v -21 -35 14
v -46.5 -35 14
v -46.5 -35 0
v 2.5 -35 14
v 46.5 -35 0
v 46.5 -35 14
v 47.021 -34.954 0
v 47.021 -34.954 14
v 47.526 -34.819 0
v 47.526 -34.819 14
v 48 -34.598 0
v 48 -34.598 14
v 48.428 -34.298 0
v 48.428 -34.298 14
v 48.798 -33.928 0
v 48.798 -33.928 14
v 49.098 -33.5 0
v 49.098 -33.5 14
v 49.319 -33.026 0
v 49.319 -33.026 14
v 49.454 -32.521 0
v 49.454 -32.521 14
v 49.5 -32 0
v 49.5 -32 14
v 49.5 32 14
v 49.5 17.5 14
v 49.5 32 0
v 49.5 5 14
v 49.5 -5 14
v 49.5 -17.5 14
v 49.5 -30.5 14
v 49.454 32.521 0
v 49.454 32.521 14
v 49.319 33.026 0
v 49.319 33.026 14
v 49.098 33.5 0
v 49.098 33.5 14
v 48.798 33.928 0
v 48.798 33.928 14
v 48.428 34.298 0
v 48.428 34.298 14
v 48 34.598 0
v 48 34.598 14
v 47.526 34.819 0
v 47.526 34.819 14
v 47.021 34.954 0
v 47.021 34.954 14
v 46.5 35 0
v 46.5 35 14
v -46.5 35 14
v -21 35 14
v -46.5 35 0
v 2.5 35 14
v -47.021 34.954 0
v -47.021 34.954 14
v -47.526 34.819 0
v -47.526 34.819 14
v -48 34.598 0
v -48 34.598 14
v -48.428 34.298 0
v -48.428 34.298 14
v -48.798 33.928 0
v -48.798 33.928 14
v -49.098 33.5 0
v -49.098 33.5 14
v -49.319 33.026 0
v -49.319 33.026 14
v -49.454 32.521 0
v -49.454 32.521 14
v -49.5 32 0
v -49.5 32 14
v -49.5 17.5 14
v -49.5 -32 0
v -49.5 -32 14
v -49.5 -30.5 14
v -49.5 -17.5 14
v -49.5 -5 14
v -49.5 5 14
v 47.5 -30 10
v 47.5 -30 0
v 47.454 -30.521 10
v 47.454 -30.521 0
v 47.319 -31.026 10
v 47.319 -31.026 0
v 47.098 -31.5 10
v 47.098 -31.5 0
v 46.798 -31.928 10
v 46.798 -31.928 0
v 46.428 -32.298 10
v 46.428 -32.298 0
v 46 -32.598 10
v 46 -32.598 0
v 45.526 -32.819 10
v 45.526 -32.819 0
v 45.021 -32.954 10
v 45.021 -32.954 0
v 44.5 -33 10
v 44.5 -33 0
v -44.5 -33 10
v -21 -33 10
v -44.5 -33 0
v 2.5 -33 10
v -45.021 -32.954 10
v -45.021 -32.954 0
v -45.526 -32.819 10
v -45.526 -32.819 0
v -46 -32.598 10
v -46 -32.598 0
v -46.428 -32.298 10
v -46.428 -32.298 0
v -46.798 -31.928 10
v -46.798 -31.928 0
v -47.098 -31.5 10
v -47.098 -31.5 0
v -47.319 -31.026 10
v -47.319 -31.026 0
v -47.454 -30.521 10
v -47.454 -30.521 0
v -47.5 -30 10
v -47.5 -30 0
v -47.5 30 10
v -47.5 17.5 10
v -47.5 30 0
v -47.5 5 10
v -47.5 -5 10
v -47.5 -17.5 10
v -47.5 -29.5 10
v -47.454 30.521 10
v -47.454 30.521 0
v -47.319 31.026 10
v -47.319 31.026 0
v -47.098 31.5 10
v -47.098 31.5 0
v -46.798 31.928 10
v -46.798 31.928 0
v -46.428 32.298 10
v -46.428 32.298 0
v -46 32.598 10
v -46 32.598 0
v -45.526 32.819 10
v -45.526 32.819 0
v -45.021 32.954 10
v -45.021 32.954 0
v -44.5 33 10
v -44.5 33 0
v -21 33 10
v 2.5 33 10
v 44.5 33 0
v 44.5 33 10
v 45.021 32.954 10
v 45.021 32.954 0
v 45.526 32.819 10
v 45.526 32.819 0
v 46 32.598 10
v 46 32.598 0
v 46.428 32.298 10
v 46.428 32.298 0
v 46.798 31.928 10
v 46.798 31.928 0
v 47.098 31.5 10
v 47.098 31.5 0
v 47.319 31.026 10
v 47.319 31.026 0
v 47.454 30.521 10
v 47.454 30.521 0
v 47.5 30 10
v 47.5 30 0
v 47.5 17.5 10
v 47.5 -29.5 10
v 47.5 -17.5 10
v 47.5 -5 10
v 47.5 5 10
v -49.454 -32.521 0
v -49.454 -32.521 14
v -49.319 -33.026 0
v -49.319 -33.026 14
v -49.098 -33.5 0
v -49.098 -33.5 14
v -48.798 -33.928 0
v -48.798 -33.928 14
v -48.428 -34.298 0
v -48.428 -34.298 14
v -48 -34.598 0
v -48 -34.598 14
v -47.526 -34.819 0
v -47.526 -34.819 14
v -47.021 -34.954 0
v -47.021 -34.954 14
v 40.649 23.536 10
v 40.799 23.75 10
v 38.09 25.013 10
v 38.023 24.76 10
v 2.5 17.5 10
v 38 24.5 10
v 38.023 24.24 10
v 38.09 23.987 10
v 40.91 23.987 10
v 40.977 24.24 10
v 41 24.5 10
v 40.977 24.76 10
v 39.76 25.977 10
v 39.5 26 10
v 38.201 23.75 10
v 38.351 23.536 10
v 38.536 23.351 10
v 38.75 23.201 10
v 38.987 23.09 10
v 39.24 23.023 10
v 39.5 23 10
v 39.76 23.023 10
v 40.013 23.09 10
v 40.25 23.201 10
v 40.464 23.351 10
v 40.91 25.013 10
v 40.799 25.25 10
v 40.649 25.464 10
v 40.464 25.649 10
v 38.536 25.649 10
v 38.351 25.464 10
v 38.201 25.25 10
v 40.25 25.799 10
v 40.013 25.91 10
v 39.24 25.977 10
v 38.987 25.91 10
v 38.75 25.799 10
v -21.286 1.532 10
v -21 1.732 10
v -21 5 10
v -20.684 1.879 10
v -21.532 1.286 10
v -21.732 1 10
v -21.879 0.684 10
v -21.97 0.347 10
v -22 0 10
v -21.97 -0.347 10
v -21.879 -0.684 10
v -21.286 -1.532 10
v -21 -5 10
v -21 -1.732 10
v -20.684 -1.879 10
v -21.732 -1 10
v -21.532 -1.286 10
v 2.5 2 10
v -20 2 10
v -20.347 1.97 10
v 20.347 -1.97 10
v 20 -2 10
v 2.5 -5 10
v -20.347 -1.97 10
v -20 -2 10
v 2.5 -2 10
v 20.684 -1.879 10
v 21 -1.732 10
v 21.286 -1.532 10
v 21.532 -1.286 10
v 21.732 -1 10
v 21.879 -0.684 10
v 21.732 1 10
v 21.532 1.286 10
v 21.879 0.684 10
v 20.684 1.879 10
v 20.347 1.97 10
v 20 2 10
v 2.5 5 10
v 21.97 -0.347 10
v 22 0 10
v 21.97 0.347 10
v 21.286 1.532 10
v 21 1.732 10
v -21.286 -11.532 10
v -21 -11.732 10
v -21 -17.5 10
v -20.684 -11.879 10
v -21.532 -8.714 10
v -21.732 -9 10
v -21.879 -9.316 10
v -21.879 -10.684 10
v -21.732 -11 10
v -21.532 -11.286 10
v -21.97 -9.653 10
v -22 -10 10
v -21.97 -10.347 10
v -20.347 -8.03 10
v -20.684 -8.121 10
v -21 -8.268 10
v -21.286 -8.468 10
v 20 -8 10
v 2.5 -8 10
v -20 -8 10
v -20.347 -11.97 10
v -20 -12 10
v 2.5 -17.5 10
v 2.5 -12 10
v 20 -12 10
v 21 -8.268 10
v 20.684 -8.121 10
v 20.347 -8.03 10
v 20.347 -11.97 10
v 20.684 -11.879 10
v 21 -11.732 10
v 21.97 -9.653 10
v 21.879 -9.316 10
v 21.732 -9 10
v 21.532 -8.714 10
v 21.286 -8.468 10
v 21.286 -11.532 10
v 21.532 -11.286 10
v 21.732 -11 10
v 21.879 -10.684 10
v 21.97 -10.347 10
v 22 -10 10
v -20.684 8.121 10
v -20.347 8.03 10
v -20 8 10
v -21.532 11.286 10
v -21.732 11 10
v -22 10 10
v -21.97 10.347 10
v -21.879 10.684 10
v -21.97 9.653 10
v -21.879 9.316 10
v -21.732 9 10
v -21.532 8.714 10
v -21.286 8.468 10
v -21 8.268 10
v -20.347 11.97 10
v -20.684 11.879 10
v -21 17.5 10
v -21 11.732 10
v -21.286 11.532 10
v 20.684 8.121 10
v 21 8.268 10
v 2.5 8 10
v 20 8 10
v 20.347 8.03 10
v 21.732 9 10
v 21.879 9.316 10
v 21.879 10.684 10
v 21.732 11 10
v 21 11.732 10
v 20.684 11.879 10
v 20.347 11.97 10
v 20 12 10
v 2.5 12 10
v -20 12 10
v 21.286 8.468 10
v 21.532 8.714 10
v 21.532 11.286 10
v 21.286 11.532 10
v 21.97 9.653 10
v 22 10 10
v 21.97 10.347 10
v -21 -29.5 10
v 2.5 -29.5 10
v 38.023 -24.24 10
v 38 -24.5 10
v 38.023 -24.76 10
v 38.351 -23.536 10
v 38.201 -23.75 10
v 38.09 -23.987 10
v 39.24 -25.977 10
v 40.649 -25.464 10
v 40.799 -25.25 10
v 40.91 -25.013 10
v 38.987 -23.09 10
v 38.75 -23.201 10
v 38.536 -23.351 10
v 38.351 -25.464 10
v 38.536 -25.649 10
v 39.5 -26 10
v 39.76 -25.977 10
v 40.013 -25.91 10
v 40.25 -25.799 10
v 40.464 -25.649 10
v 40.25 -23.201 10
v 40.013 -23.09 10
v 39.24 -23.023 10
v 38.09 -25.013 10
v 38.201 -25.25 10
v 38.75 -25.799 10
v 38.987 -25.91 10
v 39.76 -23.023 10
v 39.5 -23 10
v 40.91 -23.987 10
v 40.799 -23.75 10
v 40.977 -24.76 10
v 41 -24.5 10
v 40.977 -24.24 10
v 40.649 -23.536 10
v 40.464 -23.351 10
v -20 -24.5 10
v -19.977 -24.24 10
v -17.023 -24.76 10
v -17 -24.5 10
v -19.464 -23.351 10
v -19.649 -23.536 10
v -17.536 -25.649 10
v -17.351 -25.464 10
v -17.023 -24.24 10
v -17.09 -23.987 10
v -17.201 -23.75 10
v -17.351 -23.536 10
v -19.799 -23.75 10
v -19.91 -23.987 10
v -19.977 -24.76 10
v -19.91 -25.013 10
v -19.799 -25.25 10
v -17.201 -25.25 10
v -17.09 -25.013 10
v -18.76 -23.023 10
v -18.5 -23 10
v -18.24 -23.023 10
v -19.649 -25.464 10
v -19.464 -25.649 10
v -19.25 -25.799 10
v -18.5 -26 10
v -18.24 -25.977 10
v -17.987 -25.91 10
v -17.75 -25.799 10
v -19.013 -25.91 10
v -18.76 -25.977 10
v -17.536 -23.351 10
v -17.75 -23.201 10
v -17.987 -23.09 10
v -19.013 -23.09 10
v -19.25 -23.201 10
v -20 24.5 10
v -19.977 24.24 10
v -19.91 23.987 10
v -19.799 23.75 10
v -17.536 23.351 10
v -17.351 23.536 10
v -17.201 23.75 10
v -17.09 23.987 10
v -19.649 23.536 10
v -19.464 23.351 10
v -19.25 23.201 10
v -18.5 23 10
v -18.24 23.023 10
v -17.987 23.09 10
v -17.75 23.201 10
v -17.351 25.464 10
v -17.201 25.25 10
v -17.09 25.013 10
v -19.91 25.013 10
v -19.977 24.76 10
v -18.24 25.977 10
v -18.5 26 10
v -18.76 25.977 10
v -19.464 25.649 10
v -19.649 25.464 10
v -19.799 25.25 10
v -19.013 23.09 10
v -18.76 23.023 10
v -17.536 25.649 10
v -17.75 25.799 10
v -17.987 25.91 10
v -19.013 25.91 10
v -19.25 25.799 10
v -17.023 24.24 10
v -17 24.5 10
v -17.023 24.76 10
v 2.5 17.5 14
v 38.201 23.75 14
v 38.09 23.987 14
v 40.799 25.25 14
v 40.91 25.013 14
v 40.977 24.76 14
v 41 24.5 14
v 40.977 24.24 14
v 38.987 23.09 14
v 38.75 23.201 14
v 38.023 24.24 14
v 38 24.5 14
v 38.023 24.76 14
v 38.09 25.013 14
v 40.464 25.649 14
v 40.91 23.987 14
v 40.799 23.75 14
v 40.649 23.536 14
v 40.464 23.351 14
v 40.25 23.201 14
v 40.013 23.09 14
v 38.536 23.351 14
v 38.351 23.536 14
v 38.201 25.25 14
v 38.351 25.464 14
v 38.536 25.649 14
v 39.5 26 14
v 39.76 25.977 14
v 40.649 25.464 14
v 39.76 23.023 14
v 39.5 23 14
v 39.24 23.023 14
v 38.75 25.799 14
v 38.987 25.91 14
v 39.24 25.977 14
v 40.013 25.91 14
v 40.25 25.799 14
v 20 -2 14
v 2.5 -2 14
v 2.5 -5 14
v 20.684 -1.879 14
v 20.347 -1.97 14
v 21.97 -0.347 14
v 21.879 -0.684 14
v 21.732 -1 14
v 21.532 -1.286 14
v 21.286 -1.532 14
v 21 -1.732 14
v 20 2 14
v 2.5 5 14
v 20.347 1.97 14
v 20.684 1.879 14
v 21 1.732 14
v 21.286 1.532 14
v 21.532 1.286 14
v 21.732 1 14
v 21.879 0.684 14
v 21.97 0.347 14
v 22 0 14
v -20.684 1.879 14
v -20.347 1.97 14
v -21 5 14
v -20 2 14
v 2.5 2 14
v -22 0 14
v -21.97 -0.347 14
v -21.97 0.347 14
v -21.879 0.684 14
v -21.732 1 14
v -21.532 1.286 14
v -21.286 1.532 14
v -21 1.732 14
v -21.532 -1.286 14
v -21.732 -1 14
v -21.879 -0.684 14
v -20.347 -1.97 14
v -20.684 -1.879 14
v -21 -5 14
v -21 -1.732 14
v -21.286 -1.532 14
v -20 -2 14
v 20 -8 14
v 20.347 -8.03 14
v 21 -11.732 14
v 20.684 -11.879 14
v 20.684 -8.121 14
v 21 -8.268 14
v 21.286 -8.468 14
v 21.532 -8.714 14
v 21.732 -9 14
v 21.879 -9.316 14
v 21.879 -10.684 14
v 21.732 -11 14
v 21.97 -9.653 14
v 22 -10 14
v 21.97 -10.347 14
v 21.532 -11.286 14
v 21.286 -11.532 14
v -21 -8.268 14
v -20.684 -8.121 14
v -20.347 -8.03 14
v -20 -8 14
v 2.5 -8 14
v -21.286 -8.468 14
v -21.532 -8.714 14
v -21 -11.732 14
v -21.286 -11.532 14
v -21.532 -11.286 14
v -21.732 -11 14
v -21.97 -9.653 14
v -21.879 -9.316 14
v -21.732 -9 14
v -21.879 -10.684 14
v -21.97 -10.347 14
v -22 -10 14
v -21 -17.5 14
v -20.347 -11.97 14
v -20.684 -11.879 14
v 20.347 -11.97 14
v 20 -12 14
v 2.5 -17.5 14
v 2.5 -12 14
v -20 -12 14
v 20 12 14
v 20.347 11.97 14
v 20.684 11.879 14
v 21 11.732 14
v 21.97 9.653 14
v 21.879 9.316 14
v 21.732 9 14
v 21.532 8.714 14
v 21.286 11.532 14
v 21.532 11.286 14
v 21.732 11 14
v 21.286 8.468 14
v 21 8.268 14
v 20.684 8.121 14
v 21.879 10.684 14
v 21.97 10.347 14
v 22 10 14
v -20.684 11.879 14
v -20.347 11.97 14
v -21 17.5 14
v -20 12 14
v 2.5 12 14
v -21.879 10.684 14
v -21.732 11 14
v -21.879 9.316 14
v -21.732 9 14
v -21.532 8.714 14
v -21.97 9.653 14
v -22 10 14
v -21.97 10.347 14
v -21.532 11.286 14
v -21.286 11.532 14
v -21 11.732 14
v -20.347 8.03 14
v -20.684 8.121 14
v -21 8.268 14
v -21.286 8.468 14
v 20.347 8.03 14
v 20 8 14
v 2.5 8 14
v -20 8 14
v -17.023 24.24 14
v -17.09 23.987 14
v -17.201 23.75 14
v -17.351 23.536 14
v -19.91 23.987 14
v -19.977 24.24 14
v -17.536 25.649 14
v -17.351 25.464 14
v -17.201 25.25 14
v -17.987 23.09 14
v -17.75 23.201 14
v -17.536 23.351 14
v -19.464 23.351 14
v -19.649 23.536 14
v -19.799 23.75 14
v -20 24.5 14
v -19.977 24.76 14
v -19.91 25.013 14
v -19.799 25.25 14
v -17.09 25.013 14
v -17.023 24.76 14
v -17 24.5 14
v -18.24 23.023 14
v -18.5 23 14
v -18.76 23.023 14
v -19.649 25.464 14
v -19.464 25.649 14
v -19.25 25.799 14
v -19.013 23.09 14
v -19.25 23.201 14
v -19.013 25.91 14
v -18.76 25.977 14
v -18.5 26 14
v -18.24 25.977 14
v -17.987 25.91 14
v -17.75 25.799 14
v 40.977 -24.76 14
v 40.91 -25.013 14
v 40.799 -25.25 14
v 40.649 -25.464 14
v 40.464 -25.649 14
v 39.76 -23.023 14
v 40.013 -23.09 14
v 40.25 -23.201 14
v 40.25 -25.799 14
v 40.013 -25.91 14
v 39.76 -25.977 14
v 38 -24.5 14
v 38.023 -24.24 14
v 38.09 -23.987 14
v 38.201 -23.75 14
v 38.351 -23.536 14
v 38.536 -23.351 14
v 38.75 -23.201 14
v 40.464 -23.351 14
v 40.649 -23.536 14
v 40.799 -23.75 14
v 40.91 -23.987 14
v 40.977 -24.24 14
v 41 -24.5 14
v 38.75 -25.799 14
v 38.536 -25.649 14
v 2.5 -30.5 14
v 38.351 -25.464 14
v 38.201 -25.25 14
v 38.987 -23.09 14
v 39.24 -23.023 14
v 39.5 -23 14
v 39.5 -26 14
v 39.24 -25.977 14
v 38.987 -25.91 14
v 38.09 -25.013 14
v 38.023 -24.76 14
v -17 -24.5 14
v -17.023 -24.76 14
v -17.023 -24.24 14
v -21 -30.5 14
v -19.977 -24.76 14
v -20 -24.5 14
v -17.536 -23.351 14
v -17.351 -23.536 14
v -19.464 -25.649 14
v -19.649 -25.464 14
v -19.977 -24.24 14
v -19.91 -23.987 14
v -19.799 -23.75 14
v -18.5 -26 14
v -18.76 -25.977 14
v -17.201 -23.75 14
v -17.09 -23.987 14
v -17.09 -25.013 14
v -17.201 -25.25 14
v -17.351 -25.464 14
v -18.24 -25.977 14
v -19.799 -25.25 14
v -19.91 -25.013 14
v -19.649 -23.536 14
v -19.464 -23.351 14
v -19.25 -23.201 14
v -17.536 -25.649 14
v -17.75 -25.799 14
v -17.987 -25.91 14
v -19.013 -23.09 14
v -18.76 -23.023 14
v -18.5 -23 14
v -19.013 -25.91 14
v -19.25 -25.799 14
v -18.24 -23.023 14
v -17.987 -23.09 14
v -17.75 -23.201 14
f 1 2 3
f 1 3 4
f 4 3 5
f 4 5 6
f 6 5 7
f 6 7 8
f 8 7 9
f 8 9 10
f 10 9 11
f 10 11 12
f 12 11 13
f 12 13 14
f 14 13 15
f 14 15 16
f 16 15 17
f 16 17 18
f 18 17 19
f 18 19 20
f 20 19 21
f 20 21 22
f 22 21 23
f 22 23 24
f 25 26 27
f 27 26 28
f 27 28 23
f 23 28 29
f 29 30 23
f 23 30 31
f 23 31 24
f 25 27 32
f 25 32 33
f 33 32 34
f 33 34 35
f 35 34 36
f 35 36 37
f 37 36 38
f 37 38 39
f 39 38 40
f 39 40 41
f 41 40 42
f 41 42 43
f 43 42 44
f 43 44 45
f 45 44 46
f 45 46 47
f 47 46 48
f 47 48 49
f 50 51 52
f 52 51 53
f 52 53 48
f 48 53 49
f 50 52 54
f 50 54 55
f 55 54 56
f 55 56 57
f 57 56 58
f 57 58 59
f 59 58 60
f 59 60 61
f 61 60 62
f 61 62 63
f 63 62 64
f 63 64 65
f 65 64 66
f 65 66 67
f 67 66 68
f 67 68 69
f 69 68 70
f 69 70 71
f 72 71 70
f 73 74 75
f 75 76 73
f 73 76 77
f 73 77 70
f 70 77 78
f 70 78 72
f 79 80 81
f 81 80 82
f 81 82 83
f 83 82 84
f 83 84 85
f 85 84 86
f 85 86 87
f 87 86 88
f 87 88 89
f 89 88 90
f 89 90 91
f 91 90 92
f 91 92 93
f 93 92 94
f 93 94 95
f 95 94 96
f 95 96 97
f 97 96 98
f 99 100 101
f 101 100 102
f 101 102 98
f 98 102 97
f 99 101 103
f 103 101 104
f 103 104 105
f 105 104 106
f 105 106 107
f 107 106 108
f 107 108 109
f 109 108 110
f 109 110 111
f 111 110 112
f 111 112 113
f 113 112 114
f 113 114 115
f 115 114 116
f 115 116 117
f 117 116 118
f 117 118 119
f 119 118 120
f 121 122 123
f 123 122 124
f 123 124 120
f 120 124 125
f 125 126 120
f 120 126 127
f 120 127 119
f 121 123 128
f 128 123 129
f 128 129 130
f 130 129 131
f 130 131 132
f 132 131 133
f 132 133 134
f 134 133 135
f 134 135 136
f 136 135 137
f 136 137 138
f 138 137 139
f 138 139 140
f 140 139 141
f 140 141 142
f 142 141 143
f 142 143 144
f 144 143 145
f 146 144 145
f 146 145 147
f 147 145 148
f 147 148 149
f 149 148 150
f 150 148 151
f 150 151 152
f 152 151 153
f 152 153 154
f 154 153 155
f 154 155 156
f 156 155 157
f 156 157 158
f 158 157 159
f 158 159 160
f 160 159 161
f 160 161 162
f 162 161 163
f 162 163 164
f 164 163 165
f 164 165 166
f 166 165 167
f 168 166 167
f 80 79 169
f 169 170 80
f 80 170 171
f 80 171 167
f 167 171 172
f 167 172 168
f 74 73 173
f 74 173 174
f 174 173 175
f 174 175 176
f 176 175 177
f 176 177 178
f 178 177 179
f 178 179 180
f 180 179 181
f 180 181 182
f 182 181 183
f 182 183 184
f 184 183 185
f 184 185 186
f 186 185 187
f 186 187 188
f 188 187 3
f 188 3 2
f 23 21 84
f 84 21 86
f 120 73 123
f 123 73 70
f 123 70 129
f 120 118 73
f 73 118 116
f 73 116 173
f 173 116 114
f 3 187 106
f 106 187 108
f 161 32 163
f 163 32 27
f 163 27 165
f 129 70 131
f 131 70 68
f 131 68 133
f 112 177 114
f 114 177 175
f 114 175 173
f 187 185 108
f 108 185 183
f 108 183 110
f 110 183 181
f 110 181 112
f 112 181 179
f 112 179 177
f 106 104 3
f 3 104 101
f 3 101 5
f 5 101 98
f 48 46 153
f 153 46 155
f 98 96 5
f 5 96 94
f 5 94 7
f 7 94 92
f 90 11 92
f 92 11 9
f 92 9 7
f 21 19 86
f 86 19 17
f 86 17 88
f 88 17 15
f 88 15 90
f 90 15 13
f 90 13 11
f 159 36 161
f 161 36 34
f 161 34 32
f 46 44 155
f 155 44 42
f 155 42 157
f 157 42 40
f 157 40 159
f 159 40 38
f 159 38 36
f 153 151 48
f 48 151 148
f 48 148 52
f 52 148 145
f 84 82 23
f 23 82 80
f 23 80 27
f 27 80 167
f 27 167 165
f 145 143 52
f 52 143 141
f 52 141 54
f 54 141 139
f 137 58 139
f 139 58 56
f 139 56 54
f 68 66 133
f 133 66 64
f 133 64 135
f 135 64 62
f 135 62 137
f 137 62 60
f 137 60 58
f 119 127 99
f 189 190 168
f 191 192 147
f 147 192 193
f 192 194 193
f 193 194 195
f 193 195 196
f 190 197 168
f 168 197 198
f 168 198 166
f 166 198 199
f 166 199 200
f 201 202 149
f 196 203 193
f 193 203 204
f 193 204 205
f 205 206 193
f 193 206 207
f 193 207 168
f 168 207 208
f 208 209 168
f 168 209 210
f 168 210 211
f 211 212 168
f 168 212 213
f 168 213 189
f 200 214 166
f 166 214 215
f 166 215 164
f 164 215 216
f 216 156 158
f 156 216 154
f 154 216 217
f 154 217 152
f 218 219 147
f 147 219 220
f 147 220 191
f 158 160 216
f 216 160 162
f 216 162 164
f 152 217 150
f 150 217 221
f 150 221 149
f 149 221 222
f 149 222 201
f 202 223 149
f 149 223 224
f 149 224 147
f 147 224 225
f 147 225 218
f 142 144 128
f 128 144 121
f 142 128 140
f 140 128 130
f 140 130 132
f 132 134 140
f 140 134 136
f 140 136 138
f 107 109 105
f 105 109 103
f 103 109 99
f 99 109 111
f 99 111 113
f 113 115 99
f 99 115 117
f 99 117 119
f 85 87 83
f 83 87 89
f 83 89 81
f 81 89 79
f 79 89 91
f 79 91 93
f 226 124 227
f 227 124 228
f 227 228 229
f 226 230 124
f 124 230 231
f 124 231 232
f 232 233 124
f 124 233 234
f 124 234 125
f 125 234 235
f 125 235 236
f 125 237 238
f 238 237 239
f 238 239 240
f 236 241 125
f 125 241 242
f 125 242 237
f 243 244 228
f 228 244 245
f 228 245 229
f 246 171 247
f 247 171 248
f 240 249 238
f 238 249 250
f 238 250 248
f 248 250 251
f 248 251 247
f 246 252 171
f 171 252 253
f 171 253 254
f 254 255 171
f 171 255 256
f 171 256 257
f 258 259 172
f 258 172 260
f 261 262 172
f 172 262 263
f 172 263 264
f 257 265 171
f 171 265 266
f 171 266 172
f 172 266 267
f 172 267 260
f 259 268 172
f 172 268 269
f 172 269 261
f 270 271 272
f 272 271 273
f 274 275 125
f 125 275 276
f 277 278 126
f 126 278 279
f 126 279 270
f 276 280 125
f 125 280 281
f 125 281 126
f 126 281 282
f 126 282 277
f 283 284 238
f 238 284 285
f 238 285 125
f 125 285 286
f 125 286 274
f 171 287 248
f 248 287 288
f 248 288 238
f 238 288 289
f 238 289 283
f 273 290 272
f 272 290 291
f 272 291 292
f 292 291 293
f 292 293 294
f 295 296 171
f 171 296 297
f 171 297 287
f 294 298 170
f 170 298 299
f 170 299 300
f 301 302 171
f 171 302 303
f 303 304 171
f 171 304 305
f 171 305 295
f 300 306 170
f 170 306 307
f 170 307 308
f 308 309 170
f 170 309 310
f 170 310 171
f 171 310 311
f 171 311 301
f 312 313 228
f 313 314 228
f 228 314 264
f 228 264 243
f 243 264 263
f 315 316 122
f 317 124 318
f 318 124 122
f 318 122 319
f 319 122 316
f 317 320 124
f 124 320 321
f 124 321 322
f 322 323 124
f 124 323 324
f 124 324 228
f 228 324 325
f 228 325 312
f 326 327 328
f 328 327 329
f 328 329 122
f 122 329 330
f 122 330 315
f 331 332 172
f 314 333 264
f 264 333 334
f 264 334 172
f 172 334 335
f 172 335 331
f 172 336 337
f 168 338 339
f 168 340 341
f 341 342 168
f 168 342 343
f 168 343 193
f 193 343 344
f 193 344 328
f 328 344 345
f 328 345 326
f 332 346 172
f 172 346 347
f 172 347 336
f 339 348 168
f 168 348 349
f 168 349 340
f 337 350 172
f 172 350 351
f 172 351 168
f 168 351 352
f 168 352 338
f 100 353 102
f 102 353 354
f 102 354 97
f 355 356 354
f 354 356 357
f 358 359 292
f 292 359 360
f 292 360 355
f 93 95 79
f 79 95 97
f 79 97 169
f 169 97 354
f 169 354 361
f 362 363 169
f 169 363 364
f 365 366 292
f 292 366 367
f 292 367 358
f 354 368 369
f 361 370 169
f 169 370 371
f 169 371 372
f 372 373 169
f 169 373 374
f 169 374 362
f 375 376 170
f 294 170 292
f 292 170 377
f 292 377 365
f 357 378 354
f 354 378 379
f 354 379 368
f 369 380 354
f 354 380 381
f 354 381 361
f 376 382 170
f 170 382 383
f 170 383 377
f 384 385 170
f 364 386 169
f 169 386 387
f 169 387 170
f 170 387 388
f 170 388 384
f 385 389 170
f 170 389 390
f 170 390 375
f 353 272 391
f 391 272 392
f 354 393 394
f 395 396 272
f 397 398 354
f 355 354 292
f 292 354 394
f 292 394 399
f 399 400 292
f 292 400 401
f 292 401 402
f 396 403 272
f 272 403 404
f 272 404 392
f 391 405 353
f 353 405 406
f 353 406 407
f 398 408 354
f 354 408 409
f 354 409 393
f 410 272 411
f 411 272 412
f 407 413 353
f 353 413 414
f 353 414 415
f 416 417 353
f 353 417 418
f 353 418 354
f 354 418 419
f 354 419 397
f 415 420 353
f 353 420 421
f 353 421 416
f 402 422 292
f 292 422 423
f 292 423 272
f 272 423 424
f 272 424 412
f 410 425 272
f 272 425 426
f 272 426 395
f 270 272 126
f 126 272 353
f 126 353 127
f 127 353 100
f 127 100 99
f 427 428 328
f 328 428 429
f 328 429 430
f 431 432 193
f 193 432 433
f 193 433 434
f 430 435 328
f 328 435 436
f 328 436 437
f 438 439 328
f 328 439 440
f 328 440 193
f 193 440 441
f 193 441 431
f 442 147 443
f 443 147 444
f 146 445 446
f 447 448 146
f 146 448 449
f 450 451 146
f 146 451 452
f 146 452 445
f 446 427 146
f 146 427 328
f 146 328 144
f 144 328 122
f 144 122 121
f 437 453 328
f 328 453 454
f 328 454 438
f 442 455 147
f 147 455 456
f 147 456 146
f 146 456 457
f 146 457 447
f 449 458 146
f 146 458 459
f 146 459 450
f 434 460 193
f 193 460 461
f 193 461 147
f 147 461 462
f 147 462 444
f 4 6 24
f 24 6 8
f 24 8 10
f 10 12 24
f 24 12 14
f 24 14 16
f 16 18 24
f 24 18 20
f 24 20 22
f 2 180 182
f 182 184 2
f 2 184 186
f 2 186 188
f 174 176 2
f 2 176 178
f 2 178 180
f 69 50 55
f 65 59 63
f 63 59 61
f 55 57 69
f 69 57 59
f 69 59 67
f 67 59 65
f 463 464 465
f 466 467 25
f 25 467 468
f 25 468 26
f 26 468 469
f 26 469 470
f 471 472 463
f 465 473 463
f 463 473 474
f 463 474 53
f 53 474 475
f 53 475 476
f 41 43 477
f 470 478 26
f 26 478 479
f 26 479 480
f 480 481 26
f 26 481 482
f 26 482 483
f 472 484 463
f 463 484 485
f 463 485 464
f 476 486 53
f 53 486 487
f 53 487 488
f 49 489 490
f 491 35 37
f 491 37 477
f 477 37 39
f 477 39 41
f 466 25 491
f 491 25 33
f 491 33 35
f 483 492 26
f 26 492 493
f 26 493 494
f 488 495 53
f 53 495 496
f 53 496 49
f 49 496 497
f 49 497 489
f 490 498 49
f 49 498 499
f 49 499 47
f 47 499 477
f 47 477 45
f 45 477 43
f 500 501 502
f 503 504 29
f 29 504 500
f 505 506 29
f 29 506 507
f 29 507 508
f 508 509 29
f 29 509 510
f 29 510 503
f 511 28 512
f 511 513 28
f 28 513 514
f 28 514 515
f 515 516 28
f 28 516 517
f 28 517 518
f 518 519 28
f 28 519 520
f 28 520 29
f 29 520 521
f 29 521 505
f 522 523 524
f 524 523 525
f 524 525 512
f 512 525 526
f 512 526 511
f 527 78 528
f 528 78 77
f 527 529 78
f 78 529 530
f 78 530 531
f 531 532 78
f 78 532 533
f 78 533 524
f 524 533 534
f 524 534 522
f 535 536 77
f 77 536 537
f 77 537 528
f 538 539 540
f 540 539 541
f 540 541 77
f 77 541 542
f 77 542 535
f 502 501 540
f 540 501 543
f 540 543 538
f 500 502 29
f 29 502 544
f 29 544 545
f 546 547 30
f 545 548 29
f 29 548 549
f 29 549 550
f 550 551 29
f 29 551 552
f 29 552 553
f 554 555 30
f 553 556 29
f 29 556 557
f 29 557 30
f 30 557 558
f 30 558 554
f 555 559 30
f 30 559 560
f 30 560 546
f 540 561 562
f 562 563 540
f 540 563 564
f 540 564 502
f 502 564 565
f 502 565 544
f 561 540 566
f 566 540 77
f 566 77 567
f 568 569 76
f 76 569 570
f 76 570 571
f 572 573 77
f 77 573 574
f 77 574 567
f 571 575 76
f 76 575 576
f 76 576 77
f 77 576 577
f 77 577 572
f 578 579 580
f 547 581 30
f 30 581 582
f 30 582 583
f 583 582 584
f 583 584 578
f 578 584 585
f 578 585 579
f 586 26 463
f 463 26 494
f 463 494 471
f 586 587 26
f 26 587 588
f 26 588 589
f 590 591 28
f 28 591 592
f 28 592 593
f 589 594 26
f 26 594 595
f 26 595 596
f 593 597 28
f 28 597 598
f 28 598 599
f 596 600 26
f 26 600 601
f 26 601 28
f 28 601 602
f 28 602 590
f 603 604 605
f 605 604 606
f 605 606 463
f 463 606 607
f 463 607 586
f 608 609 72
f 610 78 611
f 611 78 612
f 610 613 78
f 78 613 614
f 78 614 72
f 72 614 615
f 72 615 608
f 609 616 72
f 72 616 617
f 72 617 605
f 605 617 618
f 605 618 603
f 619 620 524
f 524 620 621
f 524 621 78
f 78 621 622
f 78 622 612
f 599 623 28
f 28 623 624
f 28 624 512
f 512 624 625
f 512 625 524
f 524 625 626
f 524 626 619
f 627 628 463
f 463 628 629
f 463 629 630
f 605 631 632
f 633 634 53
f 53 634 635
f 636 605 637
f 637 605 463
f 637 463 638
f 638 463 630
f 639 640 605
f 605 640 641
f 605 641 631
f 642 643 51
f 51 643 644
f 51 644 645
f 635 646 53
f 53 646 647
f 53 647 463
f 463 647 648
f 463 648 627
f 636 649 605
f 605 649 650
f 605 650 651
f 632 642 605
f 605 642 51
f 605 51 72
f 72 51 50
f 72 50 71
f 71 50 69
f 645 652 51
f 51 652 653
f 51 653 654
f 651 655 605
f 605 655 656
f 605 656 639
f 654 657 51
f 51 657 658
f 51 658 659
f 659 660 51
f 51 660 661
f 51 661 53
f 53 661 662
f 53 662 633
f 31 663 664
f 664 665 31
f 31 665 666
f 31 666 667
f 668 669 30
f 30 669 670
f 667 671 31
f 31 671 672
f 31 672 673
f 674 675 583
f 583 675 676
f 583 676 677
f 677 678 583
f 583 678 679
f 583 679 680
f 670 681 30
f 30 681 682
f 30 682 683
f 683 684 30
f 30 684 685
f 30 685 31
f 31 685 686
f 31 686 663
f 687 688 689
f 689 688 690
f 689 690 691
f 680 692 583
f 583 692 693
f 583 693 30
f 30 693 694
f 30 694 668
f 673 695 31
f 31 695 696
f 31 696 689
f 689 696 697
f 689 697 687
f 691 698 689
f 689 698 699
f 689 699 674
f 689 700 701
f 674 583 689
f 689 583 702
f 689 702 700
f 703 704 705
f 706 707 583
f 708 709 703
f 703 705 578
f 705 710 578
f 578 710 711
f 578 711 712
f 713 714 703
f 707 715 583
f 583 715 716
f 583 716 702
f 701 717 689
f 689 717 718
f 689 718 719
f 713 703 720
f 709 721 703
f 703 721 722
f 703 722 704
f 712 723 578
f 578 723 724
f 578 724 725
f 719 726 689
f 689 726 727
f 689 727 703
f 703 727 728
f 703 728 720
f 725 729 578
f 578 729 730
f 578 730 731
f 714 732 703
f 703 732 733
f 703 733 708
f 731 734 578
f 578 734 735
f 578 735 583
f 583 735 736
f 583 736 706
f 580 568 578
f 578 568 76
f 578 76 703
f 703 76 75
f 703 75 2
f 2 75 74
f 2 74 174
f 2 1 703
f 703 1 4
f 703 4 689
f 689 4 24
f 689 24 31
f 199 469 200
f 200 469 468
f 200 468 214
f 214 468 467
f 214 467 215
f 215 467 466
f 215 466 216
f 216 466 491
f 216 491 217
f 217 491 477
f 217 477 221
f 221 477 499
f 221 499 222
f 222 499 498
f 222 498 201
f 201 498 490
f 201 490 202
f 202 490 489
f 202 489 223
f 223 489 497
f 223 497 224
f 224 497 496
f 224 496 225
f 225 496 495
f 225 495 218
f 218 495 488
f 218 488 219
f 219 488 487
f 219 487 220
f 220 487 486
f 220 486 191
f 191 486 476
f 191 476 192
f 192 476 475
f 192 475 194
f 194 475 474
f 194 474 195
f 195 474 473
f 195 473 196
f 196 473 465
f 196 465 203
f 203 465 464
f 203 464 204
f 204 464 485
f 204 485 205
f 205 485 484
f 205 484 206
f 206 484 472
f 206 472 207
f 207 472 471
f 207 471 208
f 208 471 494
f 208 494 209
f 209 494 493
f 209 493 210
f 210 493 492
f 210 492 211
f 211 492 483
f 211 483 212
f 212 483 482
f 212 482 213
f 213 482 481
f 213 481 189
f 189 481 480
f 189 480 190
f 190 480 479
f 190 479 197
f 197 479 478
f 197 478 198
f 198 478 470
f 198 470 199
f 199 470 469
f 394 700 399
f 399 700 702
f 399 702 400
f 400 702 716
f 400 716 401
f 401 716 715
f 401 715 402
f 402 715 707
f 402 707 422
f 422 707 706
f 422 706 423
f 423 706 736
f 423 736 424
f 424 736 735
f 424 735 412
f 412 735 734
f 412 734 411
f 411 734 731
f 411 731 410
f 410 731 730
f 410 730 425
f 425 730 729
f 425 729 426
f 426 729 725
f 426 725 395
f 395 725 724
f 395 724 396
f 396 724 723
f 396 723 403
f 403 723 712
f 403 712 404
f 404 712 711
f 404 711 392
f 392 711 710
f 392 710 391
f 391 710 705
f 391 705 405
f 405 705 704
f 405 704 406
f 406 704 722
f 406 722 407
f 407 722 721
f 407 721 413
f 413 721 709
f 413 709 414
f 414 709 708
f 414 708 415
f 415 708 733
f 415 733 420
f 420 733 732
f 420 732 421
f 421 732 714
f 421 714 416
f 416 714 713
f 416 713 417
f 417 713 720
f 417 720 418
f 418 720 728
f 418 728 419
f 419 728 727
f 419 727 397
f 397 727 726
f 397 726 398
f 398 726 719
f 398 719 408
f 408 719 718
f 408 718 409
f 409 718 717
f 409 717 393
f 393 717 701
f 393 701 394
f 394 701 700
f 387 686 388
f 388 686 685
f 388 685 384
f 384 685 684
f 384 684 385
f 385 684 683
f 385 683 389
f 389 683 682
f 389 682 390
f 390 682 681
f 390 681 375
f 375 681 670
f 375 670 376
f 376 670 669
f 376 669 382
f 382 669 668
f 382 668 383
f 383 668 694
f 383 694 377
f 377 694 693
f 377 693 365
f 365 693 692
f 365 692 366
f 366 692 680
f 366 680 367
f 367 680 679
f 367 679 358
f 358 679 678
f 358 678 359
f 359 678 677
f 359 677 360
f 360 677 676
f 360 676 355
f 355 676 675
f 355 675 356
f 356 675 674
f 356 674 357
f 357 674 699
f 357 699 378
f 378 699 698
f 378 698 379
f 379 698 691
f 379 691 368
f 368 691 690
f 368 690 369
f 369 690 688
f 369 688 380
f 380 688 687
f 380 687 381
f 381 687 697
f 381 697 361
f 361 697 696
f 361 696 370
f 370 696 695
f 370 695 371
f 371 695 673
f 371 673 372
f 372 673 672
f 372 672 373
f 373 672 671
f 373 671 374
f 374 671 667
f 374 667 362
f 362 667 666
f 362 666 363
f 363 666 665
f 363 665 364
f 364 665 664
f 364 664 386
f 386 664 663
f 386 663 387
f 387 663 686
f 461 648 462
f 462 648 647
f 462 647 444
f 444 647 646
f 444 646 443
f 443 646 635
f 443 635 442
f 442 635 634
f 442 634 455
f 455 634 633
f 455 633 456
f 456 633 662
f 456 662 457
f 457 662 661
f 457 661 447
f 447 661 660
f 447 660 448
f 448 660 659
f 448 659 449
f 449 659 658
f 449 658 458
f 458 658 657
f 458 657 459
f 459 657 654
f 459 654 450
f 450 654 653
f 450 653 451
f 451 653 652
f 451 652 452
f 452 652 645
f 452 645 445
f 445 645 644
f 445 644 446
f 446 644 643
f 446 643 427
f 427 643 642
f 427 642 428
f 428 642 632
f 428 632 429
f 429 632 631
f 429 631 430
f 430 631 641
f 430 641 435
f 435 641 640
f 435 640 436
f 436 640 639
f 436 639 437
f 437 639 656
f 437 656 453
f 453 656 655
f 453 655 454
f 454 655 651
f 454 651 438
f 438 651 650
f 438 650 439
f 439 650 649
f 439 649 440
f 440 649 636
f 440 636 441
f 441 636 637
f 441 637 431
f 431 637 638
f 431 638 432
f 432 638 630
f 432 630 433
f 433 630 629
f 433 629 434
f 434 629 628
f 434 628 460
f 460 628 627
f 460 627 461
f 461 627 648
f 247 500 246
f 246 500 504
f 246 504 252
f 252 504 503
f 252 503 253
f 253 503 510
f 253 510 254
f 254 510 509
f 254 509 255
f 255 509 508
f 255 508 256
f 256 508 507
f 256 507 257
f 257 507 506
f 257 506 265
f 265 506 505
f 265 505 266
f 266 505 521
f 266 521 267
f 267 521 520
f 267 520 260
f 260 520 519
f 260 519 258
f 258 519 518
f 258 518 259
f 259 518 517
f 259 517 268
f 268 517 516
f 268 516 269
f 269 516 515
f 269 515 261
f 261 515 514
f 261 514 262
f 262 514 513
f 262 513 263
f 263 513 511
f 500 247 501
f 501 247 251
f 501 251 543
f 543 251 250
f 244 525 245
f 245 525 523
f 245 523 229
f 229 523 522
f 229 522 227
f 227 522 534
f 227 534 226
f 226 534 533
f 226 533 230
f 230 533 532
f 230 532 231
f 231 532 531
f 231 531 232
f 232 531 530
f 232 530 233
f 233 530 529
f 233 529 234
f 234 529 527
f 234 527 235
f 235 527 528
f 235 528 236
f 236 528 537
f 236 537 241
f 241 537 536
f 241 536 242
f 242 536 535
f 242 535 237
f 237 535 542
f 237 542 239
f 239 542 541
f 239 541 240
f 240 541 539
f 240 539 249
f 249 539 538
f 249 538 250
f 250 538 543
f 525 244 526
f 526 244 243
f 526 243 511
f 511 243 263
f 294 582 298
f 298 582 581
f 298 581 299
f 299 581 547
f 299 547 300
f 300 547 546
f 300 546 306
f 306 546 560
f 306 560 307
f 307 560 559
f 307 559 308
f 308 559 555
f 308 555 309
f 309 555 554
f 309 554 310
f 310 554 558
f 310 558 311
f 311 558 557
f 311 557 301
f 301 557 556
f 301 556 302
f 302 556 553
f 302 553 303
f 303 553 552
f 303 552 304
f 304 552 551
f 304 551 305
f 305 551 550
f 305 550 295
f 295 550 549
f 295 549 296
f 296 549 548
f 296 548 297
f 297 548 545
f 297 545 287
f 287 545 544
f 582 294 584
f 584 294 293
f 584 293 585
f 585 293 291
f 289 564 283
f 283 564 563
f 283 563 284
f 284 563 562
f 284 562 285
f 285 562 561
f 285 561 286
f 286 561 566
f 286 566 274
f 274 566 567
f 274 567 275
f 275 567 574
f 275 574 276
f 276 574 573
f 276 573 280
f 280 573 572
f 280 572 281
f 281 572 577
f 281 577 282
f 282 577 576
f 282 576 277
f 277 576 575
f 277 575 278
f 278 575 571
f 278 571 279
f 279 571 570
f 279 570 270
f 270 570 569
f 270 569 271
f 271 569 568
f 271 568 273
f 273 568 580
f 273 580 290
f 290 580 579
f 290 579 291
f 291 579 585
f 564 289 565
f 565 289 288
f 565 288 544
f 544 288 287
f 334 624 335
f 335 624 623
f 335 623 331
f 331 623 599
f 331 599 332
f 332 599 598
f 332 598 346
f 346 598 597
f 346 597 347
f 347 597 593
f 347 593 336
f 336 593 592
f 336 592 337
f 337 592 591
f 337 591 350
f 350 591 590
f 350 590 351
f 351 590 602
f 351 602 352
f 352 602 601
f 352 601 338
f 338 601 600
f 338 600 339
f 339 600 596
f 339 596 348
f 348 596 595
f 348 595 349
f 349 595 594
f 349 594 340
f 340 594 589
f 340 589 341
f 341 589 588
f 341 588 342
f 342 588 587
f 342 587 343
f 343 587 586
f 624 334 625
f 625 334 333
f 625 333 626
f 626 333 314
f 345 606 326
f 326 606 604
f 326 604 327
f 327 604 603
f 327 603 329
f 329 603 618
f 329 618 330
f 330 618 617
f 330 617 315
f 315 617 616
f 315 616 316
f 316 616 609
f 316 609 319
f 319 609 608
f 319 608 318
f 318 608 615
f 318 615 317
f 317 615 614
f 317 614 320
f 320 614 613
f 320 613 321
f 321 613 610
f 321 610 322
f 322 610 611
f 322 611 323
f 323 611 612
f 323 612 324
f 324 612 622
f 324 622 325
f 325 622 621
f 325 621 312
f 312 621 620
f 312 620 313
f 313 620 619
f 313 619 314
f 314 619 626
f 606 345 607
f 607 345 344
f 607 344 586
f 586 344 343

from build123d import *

# Parameters (mm, degrees)
BOSS_EXTRU_1_DEPTH      = 10
BOSS_EXTRU_2_START      = 10
BOSS_EXTRU_2_DEPTH      = 4
ESQUISSE3_R             = 1.5
ENL_V_MAT_EXTRU_1_DEPTH = 63.219369974
ENL_V_MAT_EXTRU_2_DEPTH = 5


with BuildPart() as part:
    # Esquisse1 → Boss.-Extru.1 (new body)
    with BuildSketch(Plane.XY):
        with BuildLine():
            Line((-46.5, -35), (46.5, -35))
            ThreePointArc((46.5, -35), (48.621320344, -34.121320344), (49.5, -32))
            Line((49.5, -32), (49.5, 32))
            ThreePointArc((49.5, 32), (48.621320344, 34.121320344), (46.5, 35))
            Line((46.5, 35), (-46.5, 35))
            ThreePointArc((-46.5, 35), (-48.621320344, 34.121320344), (-49.5, 32))
            Line((-49.5, 32), (-49.5, -32))
            ThreePointArc((-49.5, -32), (-48.621320344, -34.121320344), (-46.5, -35))
        make_face()
        with BuildLine():
            ThreePointArc((44.5, -33), (46.621320344, -32.121320344), (47.5, -30))
            Line((47.5, -30), (47.5, 30))
            ThreePointArc((47.5, 30), (46.621320344, 32.121320344), (44.5, 33))
            Line((44.5, 33), (-44.5, 33))
            ThreePointArc((-44.5, 33), (-46.621320344, 32.121320344), (-47.5, 30))
            Line((-47.5, 30), (-47.5, -30))
            ThreePointArc((-47.5, -30), (-46.621320344, -32.121320344), (-44.5, -33))
            Line((-44.5, -33), (44.5, -33))
        make_face(mode=Mode.SUBTRACT)
    extrude(amount=BOSS_EXTRU_1_DEPTH)

    # Esquisse2 → Boss.-Extru.2 (add)
    with BuildSketch(Plane.XY.offset(BOSS_EXTRU_2_START)):
        with BuildLine():
            Line((-46.5, -35), (46.5, -35))
            ThreePointArc((46.5, -35), (48.621320344, -34.121320344), (49.5, -32))
            Line((49.5, -32), (49.5, 32))
            ThreePointArc((49.5, 32), (48.621320344, 34.121320344), (46.5, 35))
            Line((46.5, 35), (-46.5, 35))
            ThreePointArc((-46.5, 35), (-48.621320344, 34.121320344), (-49.5, 32))
            Line((-49.5, 32), (-49.5, -32))
            ThreePointArc((-49.5, -32), (-48.621320344, -34.121320344), (-46.5, -35))
        make_face()
    extrude(amount=BOSS_EXTRU_2_DEPTH)

    # Esquisse3 → Enlèv. mat.-Extru.1 (cut, through all)
    with BuildSketch(Plane.XY.offset(14)):
        with Locations((39.5, 24.5)):
            Circle(ESQUISSE3_R)
        with Locations((-18.5, 24.5)):
            Circle(ESQUISSE3_R)
        with Locations((39.5, -24.5)):
            Circle(ESQUISSE3_R)
        with Locations((-18.5, -24.5)):
            Circle(ESQUISSE3_R)
    extrude(amount=-ENL_V_MAT_EXTRU_1_DEPTH, mode=Mode.SUBTRACT)

    # Esquisse4 → Enlèv. mat.-Extru.2 (cut)
    with BuildSketch(Plane.XY.offset(14)):
        with BuildLine():
            Line((20, -2), (-20, -2))
            ThreePointArc((-20, -2), (-22, 0), (-20, 2))
            Line((-20, 2), (20, 2))
            ThreePointArc((20, 2), (22, 0), (20, -2))
        make_face()
        with BuildLine():
            Line((20, -12), (-20, -12))
            ThreePointArc((-20, -12), (-22, -10), (-20, -8))
            Line((-20, -8), (20, -8))
            ThreePointArc((20, -8), (22, -10), (20, -12))
        make_face()
        with BuildLine():
            Line((20, 8), (-20, 8))
            ThreePointArc((-20, 8), (-22, 10), (-20, 12))
            Line((-20, 12), (20, 12))
            ThreePointArc((20, 12), (22, 10), (20, 8))
        make_face()
    extrude(amount=-ENL_V_MAT_EXTRU_2_DEPTH, mode=Mode.SUBTRACT)


solid = part.part
